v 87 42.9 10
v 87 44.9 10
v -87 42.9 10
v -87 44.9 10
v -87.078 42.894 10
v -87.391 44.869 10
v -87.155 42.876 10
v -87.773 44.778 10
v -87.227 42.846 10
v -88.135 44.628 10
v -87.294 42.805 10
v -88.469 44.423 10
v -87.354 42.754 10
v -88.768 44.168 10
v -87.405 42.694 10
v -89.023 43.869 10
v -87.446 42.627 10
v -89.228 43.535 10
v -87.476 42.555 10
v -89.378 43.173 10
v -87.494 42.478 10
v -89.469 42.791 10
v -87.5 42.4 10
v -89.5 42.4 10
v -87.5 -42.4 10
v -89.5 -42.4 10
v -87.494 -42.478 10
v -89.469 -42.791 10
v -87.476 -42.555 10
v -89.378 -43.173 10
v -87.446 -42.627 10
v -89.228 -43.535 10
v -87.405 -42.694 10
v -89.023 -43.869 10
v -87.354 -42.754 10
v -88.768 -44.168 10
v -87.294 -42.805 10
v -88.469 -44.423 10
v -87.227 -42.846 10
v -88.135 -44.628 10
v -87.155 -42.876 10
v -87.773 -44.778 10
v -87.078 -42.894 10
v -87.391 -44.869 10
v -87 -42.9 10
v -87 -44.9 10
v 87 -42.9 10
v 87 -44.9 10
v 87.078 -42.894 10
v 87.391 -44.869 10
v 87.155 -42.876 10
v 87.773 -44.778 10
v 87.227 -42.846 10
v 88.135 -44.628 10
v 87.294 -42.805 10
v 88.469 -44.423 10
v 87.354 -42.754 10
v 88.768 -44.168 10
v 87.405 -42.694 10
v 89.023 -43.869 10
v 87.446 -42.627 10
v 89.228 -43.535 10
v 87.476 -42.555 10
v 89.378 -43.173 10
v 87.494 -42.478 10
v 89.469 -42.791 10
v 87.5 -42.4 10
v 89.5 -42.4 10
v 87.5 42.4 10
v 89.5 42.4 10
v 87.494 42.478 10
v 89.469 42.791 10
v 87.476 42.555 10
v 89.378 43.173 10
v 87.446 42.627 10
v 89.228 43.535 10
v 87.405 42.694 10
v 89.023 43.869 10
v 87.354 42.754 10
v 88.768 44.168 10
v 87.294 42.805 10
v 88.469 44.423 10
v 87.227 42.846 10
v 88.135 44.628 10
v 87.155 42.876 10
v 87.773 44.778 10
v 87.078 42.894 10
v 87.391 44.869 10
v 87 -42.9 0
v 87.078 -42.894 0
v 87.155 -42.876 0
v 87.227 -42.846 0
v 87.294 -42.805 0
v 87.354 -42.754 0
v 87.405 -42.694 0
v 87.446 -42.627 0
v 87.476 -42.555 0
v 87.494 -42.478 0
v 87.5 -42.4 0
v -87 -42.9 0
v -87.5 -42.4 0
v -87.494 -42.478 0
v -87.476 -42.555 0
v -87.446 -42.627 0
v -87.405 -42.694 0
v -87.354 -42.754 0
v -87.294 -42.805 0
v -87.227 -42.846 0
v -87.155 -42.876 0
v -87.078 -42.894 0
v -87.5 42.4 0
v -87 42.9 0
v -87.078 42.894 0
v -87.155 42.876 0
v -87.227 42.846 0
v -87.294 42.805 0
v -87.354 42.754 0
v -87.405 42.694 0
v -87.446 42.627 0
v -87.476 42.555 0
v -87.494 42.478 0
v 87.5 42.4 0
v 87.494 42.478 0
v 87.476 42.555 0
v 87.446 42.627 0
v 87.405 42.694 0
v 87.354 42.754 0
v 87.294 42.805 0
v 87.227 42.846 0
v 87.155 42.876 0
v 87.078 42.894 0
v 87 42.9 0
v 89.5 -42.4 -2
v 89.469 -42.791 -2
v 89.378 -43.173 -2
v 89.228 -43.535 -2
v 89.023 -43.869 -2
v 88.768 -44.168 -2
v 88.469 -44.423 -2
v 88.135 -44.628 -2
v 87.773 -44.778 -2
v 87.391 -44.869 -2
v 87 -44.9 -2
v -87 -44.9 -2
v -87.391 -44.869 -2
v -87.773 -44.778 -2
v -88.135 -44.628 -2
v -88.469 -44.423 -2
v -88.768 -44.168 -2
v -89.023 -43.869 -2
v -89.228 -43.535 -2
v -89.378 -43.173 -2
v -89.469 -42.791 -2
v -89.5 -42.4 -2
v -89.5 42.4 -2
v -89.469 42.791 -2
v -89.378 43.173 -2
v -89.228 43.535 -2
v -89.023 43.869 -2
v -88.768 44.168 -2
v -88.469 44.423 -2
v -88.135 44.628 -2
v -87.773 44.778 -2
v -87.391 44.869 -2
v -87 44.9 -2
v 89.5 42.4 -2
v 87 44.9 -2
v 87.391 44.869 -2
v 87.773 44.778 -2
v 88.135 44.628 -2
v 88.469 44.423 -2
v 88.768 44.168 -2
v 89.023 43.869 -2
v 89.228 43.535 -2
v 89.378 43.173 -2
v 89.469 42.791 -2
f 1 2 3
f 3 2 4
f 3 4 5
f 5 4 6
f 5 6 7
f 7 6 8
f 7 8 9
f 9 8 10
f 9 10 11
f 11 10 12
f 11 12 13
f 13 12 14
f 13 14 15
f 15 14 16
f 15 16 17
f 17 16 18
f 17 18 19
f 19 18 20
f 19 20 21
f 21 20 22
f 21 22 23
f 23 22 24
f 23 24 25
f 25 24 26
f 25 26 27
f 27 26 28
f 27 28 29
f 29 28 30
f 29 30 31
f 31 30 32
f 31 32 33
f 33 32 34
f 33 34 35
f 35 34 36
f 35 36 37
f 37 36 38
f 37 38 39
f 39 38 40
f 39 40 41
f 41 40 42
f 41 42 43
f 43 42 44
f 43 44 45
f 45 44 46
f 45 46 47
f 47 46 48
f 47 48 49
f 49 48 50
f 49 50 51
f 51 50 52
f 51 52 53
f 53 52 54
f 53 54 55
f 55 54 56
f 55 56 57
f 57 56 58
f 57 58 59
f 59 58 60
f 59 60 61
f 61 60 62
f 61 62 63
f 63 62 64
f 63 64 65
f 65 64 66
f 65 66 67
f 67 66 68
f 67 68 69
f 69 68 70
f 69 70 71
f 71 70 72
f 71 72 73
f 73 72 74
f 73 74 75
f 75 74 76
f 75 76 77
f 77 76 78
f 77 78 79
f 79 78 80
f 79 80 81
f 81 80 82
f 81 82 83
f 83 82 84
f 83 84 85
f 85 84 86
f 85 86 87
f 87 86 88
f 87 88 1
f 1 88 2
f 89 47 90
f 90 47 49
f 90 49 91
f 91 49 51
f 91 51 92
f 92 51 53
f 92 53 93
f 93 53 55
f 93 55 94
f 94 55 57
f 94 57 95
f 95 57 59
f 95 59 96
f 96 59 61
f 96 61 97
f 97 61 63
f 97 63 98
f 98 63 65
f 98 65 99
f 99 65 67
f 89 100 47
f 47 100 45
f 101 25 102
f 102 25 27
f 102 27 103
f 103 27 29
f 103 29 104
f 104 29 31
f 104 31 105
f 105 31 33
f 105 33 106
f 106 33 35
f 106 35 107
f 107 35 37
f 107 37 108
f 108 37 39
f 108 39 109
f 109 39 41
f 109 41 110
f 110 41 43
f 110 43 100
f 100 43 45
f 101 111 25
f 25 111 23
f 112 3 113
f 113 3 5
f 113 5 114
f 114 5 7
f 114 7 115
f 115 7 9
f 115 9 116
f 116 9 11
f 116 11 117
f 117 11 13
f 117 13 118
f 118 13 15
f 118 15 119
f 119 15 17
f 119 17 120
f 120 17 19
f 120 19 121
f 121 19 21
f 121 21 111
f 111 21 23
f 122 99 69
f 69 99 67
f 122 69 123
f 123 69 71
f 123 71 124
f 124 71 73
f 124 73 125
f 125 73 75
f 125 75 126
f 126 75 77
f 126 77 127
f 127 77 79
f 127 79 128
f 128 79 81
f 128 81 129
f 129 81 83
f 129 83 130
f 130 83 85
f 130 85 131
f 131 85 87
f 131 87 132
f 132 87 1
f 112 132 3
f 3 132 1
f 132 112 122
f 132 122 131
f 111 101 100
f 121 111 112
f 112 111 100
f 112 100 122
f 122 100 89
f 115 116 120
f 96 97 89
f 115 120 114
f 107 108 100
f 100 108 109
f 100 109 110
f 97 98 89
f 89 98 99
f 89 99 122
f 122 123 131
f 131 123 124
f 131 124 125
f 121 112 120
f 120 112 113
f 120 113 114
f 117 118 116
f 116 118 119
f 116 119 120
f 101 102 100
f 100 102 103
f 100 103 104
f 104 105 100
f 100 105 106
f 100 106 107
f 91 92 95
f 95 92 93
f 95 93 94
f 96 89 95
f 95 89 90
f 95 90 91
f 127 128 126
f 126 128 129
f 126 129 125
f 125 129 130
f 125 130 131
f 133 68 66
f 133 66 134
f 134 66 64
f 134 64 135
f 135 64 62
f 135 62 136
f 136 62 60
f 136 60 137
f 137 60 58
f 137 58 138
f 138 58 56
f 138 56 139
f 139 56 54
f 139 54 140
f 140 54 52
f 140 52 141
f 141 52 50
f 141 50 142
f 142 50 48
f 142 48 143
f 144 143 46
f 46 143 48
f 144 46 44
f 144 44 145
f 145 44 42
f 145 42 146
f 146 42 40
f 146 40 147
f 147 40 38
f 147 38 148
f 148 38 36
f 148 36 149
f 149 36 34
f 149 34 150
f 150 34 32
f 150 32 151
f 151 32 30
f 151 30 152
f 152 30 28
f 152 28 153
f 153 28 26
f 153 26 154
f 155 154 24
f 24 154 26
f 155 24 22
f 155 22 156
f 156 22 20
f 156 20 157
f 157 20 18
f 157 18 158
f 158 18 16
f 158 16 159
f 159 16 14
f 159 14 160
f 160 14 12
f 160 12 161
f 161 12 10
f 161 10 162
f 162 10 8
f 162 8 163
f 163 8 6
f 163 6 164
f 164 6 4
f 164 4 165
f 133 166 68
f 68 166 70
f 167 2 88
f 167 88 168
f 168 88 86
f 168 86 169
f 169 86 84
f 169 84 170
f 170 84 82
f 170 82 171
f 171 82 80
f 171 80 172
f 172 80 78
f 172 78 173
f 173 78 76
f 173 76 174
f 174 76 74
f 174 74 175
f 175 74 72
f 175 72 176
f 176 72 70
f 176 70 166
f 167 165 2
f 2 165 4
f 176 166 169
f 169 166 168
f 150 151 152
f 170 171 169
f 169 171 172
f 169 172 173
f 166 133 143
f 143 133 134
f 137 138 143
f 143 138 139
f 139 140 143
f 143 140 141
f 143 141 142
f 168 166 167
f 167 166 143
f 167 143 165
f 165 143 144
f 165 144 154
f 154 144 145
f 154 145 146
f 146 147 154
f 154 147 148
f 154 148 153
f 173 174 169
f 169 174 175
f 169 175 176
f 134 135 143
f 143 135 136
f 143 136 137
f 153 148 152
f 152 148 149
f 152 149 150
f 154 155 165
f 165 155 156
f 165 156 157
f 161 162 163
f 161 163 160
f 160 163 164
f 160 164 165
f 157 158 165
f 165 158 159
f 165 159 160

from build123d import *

# Parameters (mm, degrees)
THICKEN1_START   = -2
THICKEN1_DEPTH   = 2
THICKEN1_2_DEPTH = 10


# Read off the part's stored shape, not the designer's step: Thicken1
with BuildPart() as part:
    # Thicken1 outline → Thicken1 (new body)
    with BuildSketch(Plane.XY.offset(THICKEN1_START)):
        with BuildLine():
            Line((-87, -44.9), (87, -44.9))
            ThreePointArc((87, -44.9), (88.767766953, -44.167766953), (89.5, -42.4))
            Line((89.5, -42.4), (89.5, 42.4))
            ThreePointArc((89.5, 42.4), (88.767766953, 44.167766953), (87, 44.9))
            Line((87, 44.9), (-87, 44.9))
            ThreePointArc((-87, 44.9), (-88.767766953, 44.167766953), (-89.5, 42.4))
            Line((-89.5, 42.4), (-89.5, -42.4))
            ThreePointArc((-89.5, -42.4), (-88.767766953, -44.167766953), (-87, -44.9))
        make_face()
    extrude(amount=THICKEN1_DEPTH)

    # Thicken1 2 outline → Thicken1 2 (add)
    with BuildSketch(Plane.XY):
        with BuildLine():
            Line((-87, -44.9), (87, -44.9))
            ThreePointArc((87, -44.9), (88.767766953, -44.167766953), (89.5, -42.4))
            Line((89.5, -42.4), (89.5, 42.4))
            ThreePointArc((89.5, 42.4), (88.767766953, 44.167766953), (87, 44.9))
            Line((87, 44.9), (-87, 44.9))
            ThreePointArc((-87, 44.9), (-88.767766953, 44.167766953), (-89.5, 42.4))
            Line((-89.5, 42.4), (-89.5, -42.4))
            ThreePointArc((-89.5, -42.4), (-88.767766953, -44.167766953), (-87, -44.9))
        make_face()
        with BuildLine():
            ThreePointArc((87.5, -42.4), (87.353553391, -42.753553391), (87, -42.9))
            Line((87, -42.9), (-87, -42.9))
            ThreePointArc((-87, -42.9), (-87.353553391, -42.753553391), (-87.5, -42.4))
            Line((-87.5, -42.4), (-87.5, 42.4))
            ThreePointArc((-87.5, 42.4), (-87.353553391, 42.753553391), (-87, 42.9))
            Line((-87, 42.9), (87, 42.9))
            ThreePointArc((87, 42.9), (87.353553391, 42.753553391), (87.5, 42.4))
            Line((87.5, 42.4), (87.5, -42.4))
        make_face(mode=Mode.SUBTRACT)
    extrude(amount=THICKEN1_2_DEPTH)


solid = part.part
